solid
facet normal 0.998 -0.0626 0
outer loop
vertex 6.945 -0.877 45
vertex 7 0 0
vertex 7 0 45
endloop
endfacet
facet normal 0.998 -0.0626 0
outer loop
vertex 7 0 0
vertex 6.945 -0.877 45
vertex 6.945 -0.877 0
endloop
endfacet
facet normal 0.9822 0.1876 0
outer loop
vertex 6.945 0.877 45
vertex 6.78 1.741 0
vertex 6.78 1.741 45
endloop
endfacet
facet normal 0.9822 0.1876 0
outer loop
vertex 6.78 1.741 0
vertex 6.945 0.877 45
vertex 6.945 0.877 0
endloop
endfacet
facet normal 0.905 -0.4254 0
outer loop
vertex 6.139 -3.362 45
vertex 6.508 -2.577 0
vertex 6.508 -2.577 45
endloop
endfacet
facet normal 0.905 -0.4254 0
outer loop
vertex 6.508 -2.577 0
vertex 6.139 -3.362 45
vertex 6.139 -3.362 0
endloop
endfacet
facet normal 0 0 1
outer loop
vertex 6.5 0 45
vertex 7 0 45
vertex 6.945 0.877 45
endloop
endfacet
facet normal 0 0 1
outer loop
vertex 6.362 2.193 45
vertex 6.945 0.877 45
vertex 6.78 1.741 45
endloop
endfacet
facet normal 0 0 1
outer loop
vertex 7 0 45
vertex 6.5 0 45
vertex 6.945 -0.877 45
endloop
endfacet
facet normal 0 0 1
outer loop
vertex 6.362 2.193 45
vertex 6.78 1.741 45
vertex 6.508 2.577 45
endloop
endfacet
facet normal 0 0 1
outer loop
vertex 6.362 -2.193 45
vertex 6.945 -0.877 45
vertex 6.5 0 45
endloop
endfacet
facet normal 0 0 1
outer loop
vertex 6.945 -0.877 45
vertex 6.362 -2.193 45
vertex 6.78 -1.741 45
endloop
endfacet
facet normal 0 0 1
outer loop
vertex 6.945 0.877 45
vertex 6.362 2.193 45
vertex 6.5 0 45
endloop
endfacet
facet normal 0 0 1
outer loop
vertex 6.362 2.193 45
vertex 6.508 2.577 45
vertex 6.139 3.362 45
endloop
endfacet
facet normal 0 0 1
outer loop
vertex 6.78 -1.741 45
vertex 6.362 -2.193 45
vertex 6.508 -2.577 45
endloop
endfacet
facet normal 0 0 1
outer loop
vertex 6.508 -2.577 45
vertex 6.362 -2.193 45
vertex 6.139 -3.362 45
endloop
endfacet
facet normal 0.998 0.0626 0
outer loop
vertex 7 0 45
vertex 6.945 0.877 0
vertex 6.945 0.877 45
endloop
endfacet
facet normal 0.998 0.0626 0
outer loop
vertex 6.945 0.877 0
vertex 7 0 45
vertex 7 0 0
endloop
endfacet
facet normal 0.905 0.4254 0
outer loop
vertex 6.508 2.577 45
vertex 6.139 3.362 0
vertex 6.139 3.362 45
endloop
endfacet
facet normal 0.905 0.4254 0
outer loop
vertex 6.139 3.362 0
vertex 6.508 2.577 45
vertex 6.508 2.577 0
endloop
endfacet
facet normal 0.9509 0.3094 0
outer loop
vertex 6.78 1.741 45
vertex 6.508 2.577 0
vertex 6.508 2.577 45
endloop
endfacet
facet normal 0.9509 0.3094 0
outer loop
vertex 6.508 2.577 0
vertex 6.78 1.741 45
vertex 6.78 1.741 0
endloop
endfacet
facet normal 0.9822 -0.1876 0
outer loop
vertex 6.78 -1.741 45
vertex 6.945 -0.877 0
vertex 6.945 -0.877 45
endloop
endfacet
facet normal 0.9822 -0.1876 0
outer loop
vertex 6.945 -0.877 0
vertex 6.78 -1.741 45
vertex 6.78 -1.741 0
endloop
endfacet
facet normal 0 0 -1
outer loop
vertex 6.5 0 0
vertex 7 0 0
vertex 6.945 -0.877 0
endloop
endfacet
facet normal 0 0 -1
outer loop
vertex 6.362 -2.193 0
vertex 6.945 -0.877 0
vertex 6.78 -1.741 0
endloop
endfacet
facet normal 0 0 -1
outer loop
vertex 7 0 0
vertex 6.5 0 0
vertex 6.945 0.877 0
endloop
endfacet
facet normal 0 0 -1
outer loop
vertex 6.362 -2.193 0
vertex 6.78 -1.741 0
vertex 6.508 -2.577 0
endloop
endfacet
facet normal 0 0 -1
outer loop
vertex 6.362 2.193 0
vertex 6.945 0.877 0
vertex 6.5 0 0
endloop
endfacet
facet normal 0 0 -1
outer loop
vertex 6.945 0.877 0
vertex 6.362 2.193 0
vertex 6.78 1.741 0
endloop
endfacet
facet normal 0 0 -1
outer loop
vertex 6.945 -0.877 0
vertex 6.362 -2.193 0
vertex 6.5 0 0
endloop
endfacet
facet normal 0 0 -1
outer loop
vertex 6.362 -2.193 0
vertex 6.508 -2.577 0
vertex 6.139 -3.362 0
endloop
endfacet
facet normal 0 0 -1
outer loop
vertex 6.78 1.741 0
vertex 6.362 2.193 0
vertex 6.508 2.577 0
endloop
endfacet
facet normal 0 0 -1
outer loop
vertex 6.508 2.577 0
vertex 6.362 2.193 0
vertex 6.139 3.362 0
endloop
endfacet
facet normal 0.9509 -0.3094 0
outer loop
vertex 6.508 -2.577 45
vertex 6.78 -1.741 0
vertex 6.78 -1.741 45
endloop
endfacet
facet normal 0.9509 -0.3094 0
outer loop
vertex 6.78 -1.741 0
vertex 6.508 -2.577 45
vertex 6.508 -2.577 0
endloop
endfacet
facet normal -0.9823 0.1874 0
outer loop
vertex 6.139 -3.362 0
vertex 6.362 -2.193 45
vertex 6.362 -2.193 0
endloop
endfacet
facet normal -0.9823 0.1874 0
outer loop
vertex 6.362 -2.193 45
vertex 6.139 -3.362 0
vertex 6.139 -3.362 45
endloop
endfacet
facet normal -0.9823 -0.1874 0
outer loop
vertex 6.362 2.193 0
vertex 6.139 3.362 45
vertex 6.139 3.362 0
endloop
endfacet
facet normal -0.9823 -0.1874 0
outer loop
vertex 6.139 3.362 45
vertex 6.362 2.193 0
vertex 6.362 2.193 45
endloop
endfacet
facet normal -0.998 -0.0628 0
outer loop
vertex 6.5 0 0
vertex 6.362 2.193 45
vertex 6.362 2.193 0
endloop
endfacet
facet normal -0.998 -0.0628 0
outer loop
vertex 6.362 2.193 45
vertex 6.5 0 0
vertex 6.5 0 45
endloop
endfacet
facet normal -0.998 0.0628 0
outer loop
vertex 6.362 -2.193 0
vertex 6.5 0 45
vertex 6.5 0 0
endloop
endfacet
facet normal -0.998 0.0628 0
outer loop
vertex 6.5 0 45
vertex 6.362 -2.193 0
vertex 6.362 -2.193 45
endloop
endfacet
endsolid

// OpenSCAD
$fn = 50;


difference() {
	union() {
		cylinder(h = 45, r = 7.0000000000);
		translate(v = [-14.0000000000, 0, 0]) {
			cylinder(h = 45, r = 7.0000000000);
		}
	}
	union() {
		cylinder(h = 45, r = 3.2500000000);
		cylinder(h = 45, r = 1.8000000000);
		cylinder(h = 45, r = 1.8000000000);
		cylinder(h = 45, r = 1.8000000000);
		translate(v = [-18.5000000000, 0, 0]) {
			hull() {
				translate(v = [-3.7500000000, 0.0000000000, 0]) {
					cylinder(h = 45, r = 7.5000000000);
				}
				translate(v = [3.7500000000, 0.0000000000, 0]) {
					cylinder(h = 45, r = 7.5000000000);
				}
				translate(v = [-3.7500000000, -0.0000000000, 0]) {
					cylinder(h = 45, r = 7.5000000000);
				}
				translate(v = [3.7500000000, -0.0000000000, 0]) {
					cylinder(h = 45, r = 7.5000000000);
				}
			}
		}
		translate(v = [-11.0000000000, 0, 0.0000000000]) {
			cylinder(h = 45, r = 17.5000000000);
		}
	}
}
